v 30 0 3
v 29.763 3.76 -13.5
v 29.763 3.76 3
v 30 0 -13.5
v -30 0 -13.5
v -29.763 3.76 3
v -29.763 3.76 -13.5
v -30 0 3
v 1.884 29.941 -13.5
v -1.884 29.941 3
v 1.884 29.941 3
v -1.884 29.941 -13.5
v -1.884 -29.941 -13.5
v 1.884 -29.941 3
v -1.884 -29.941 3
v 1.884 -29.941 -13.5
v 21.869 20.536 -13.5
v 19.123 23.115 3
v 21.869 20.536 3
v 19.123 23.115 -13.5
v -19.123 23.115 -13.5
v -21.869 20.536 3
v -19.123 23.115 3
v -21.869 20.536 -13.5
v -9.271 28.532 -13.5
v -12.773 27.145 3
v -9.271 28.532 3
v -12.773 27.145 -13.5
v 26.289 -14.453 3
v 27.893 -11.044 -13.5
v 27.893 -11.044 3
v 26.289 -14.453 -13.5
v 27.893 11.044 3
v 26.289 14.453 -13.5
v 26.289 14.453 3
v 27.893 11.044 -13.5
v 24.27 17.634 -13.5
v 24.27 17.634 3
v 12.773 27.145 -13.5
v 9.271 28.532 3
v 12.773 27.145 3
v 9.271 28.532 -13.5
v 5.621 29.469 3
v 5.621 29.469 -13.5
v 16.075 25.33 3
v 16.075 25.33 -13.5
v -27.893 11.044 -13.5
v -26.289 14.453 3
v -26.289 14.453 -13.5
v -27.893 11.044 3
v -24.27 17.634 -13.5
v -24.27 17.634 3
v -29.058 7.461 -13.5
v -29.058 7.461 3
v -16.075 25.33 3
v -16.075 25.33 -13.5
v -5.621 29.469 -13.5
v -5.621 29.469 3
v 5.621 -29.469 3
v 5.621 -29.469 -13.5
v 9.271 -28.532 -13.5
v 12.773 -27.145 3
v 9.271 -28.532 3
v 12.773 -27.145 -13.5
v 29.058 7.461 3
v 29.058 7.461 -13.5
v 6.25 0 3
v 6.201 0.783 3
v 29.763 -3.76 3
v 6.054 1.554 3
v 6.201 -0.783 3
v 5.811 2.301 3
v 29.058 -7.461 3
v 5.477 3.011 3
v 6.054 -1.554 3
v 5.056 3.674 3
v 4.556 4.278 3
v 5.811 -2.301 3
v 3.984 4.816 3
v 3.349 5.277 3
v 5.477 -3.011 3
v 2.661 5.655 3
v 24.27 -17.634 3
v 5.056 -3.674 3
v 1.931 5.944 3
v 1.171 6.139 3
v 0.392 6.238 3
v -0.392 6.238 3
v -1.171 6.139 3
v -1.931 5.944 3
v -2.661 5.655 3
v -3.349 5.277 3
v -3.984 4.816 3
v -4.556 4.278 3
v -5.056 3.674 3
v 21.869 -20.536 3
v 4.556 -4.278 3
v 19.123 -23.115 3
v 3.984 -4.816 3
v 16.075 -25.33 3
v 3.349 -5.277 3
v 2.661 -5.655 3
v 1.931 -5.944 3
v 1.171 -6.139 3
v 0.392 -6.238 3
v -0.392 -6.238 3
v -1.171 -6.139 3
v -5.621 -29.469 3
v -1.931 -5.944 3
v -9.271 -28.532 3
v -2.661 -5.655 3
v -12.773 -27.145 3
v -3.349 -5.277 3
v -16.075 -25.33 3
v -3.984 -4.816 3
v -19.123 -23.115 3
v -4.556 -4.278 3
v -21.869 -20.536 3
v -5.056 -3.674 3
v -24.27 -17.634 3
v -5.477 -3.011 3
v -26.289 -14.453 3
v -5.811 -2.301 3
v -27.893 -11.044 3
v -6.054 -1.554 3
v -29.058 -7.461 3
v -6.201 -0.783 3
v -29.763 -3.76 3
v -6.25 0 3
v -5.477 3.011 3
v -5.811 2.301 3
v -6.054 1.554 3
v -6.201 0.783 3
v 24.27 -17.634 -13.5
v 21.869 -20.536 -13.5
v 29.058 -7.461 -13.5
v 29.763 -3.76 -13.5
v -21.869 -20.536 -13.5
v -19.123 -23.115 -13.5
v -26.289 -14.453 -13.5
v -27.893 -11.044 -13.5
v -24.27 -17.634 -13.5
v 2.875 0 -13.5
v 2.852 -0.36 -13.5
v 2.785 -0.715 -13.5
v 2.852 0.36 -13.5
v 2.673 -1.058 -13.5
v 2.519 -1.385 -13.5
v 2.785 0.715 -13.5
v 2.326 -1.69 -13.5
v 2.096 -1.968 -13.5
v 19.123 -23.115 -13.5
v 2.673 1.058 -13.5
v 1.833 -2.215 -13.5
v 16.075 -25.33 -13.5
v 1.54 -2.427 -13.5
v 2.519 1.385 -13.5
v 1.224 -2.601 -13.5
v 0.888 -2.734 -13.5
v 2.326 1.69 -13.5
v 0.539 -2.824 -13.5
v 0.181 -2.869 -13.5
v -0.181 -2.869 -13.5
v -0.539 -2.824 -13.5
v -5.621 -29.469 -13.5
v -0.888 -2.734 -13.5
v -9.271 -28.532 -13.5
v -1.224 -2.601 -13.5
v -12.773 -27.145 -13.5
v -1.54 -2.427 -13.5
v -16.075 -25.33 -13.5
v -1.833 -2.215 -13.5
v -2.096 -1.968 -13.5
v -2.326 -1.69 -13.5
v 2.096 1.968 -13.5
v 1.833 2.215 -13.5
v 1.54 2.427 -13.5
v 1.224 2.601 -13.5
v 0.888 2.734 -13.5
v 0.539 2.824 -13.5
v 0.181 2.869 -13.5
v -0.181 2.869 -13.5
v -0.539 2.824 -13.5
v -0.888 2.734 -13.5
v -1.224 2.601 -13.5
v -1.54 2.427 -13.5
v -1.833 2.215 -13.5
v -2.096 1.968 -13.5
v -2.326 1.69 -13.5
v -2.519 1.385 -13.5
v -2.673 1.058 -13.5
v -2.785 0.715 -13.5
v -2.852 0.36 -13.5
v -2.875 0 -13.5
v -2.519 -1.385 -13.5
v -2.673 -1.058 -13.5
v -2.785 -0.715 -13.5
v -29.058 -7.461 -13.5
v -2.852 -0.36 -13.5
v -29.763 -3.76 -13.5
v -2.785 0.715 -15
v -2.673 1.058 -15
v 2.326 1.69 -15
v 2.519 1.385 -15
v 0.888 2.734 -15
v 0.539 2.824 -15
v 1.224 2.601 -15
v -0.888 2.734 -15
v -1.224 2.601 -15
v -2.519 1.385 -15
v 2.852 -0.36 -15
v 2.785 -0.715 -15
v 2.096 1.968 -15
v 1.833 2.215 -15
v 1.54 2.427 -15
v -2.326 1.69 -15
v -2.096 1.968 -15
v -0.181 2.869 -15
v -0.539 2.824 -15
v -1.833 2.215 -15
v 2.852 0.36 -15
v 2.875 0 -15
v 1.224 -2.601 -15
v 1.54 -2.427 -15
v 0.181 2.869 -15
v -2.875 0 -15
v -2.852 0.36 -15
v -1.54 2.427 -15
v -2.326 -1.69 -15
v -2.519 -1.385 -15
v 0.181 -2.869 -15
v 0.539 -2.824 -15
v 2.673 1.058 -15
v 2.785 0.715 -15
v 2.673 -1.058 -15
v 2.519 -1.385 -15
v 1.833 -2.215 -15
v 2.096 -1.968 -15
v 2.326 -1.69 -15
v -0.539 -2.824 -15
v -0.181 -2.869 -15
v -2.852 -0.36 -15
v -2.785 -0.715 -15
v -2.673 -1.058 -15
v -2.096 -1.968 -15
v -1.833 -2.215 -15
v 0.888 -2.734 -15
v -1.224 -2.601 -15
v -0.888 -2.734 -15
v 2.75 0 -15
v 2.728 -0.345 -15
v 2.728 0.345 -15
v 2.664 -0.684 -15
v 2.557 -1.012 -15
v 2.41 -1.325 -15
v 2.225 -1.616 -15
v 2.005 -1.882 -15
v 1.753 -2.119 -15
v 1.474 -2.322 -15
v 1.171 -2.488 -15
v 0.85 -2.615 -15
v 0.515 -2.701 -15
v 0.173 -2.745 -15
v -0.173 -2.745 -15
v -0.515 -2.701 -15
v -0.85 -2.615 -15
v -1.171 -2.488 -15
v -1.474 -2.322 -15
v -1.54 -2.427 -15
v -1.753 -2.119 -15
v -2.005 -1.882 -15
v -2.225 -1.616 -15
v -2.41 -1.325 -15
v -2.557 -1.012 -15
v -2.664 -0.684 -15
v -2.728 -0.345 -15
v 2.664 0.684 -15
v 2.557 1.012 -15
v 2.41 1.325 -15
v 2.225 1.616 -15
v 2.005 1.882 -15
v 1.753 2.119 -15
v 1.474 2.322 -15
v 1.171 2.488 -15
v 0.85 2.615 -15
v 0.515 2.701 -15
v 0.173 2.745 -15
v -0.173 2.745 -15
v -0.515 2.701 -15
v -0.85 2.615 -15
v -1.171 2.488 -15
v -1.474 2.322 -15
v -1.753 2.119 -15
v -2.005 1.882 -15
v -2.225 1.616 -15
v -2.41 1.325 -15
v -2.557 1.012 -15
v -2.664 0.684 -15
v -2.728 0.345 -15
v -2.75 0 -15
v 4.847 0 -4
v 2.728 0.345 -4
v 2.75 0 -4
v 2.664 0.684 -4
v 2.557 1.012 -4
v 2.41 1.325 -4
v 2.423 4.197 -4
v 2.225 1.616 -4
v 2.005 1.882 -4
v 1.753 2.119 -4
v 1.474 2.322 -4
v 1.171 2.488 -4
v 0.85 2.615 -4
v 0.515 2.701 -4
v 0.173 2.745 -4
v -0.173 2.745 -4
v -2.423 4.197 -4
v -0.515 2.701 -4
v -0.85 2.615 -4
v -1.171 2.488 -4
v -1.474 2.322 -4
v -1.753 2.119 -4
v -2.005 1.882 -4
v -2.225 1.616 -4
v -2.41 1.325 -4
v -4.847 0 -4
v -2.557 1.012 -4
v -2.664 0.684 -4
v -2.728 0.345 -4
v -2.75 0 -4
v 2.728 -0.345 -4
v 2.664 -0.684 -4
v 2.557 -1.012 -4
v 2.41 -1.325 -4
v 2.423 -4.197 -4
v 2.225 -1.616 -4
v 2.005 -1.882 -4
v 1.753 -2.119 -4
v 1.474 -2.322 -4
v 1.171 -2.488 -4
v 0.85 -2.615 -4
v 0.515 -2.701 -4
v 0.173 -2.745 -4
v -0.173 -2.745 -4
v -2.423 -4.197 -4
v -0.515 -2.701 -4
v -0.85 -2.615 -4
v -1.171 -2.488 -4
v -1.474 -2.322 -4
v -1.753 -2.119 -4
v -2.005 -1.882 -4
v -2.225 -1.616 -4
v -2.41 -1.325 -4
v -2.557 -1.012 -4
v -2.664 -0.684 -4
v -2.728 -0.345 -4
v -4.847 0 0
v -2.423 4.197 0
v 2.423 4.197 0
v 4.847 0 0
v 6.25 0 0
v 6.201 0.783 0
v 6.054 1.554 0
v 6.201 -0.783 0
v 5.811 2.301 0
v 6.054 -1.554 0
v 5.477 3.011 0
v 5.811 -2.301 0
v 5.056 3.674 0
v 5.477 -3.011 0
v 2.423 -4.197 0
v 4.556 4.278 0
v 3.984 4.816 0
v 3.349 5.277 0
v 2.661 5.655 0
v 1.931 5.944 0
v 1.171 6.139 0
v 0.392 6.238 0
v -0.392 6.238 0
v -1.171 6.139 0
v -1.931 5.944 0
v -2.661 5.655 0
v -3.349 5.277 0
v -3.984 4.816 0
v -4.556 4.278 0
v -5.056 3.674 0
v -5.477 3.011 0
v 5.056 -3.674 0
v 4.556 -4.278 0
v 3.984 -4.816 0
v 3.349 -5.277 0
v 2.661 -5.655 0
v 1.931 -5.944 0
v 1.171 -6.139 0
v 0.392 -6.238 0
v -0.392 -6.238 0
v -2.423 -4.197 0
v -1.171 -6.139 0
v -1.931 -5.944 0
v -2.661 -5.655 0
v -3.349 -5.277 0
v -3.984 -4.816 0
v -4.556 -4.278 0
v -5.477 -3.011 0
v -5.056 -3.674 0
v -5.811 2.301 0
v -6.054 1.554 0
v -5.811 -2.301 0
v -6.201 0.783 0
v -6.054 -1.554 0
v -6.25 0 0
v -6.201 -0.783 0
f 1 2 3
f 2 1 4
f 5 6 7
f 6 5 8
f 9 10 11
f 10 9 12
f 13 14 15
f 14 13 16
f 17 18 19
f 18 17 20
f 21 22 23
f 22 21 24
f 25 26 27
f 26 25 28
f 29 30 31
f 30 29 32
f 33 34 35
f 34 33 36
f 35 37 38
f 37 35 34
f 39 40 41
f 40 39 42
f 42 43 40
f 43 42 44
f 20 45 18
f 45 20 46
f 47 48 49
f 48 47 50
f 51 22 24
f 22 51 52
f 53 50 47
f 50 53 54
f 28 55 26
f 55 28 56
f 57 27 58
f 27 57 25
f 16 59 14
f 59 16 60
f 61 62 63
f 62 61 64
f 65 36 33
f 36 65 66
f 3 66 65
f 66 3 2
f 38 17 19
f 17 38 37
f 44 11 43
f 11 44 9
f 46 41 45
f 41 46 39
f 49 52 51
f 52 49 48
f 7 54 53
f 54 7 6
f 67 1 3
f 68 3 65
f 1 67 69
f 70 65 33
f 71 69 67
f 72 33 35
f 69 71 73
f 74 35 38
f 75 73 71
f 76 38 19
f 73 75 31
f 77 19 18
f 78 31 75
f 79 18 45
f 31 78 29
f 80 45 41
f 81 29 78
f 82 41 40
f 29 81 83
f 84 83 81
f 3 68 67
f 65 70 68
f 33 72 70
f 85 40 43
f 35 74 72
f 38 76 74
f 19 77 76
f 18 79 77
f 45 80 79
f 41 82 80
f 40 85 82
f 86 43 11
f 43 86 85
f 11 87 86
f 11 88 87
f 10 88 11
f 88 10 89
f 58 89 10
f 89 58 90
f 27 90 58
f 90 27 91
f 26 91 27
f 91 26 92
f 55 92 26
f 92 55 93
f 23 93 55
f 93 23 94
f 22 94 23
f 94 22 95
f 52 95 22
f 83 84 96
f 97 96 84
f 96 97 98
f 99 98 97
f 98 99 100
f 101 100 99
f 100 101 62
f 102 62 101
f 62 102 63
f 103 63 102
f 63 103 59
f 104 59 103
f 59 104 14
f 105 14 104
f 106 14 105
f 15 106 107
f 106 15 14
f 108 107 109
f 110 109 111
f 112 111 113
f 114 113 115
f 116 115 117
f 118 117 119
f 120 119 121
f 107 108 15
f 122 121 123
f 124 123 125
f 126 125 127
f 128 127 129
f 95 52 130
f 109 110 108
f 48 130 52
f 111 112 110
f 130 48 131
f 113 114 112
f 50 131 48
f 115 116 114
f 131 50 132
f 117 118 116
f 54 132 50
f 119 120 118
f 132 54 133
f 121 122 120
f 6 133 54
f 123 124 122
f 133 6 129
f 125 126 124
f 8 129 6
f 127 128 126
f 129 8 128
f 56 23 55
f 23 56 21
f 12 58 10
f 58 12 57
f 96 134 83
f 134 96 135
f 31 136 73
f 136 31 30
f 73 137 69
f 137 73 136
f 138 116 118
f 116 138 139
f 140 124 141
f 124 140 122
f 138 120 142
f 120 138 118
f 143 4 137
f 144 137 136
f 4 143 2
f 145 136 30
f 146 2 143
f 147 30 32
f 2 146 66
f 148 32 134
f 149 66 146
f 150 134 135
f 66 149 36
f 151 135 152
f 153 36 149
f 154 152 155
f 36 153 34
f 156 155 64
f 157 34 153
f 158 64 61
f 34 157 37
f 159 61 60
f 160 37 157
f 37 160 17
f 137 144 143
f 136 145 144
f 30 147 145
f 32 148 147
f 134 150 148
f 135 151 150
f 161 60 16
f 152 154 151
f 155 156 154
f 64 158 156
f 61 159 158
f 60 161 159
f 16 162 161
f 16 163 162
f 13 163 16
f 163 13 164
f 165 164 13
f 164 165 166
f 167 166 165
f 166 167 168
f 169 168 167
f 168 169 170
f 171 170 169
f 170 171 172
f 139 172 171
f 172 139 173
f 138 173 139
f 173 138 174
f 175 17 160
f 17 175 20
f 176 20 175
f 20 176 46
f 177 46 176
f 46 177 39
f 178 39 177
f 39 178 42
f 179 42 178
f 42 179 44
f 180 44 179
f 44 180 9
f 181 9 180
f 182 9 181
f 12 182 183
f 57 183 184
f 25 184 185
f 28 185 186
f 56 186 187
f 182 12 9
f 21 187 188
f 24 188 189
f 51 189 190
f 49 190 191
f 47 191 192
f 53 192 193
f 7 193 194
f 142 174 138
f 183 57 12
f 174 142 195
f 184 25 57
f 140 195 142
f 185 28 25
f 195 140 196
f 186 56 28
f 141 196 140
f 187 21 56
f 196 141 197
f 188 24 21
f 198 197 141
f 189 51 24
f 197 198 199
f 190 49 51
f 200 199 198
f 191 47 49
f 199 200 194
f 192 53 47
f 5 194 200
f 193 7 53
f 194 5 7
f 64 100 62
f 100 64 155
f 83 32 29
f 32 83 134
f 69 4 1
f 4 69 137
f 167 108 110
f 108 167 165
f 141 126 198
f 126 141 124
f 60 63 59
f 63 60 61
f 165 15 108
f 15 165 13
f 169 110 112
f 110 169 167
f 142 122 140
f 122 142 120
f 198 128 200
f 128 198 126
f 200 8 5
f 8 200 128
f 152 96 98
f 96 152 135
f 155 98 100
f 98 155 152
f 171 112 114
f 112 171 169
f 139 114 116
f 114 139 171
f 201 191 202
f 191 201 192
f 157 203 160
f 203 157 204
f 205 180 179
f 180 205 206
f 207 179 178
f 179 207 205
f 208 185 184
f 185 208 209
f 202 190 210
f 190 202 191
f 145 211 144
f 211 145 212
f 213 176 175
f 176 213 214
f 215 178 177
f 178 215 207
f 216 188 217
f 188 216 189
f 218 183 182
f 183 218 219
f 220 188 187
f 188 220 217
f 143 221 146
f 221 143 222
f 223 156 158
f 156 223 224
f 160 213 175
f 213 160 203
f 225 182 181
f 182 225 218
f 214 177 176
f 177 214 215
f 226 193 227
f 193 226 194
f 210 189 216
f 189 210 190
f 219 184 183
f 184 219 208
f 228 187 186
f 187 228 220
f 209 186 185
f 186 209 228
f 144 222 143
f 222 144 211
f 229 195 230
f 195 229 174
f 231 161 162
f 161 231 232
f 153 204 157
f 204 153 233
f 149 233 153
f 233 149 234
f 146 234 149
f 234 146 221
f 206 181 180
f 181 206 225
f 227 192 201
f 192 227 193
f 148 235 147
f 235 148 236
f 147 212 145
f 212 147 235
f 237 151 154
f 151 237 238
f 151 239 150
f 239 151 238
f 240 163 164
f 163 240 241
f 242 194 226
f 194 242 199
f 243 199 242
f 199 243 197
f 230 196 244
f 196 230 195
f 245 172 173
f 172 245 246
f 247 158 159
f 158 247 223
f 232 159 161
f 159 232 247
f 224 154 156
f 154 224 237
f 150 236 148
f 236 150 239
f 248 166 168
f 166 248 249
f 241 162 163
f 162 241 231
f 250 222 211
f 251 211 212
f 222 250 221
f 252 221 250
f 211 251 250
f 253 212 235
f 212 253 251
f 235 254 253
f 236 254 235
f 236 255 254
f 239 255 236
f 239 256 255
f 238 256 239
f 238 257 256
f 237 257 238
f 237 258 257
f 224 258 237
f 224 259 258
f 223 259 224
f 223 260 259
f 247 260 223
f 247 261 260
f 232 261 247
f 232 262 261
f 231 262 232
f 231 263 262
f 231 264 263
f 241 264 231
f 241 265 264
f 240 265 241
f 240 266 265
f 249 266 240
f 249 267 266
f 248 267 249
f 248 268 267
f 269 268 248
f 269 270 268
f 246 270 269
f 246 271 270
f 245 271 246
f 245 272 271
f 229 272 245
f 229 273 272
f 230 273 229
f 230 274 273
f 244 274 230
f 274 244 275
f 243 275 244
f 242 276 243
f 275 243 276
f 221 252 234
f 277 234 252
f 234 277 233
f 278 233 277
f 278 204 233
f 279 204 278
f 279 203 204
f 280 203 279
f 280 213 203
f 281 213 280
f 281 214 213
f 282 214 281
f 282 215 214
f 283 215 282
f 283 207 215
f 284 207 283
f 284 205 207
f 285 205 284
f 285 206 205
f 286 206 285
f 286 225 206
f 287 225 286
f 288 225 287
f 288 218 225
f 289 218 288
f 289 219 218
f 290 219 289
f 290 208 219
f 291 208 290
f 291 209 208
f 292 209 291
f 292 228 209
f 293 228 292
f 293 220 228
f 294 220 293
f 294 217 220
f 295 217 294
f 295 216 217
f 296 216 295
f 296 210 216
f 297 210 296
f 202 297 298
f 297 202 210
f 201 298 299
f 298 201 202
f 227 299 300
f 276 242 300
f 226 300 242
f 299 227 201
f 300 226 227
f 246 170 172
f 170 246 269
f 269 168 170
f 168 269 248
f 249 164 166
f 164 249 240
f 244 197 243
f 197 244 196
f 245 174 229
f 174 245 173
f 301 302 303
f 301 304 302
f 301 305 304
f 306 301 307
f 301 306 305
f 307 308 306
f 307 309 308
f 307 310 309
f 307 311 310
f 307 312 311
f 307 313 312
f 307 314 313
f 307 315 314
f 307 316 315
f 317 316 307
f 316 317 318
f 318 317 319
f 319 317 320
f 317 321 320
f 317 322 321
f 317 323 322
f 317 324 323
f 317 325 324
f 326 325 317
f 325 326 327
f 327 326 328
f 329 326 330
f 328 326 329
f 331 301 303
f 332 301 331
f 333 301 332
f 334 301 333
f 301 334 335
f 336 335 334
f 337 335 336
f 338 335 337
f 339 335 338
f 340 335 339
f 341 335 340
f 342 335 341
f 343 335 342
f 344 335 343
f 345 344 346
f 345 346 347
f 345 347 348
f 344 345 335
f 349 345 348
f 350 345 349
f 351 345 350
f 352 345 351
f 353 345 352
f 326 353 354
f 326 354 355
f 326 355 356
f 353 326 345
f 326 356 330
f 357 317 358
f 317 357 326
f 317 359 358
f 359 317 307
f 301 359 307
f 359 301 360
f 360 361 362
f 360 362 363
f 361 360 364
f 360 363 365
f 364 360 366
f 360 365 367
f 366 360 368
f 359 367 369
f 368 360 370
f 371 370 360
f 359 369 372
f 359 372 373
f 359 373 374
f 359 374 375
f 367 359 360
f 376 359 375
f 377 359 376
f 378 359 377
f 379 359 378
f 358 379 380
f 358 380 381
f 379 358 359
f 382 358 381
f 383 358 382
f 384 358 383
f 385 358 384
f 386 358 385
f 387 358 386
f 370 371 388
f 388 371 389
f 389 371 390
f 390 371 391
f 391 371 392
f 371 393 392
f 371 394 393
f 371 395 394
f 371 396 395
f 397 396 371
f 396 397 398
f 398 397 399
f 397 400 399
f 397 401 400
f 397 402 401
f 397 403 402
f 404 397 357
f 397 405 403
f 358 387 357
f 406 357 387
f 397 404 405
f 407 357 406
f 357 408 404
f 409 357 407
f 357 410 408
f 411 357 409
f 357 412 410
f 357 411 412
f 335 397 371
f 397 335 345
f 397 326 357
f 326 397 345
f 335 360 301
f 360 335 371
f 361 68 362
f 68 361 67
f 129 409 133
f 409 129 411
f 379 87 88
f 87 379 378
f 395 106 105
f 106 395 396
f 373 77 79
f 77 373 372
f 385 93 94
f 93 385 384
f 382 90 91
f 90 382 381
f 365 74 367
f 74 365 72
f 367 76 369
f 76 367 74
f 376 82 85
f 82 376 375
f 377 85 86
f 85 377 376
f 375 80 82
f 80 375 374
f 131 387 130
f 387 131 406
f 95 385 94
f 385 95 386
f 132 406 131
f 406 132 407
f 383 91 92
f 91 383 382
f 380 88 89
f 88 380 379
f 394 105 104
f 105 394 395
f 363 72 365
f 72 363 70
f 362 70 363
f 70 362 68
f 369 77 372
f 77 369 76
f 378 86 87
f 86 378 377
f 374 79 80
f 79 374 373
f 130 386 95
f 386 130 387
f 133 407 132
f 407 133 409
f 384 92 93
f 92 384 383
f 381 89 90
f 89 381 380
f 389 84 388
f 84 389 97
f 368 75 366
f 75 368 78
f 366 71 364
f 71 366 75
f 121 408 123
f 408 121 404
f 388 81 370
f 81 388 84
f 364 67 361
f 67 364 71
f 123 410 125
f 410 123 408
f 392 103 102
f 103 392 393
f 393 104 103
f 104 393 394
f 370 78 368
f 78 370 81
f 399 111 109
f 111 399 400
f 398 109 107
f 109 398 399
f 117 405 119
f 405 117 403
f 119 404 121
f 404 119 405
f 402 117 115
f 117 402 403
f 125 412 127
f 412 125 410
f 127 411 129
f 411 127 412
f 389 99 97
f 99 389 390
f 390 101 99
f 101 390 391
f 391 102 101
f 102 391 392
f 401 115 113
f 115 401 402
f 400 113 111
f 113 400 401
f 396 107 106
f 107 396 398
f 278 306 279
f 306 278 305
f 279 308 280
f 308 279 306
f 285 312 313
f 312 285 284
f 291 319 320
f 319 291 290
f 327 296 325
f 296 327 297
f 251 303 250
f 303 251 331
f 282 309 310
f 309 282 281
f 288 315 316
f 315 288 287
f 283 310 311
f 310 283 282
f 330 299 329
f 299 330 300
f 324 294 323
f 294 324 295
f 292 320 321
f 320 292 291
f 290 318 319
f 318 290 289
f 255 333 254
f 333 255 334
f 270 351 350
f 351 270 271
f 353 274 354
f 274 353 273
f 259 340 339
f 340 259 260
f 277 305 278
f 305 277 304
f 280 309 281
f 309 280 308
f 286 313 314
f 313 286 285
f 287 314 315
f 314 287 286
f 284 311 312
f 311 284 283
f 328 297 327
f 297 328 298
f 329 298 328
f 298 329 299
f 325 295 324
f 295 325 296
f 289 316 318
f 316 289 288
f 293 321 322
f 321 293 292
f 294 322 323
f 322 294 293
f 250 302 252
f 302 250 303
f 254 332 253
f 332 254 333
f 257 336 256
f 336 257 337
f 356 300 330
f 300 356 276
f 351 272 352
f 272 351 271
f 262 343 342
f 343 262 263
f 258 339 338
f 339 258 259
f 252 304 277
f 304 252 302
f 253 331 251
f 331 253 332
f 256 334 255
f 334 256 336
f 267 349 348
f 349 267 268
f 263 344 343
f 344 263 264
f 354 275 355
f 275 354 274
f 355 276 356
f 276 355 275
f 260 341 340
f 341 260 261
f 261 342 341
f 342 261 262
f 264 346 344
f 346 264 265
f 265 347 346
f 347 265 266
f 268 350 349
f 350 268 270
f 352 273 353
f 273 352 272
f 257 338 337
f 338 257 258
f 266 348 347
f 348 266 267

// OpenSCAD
$fn = 50;

difference() {
	union() {
		translate(v = [0, 0, -13.5]) {
			cylinder(h = 16.5, r = 30.0);
		}
		#translate(v = [0, 0, -15.0]) {
			cylinder(h = 15, r = 2.875);
		}
	}
	union() {
		translate(v = [0, 0, 0]) {
			rotate(a = [0, 0, 0]) {
				difference() {
					union() {
						translate(v = [0, 0, -4]) {
							linear_extrude(height = 4) {
								polygon(points = [[4.8468, 0.0], [2.4234000000000004, 4.197451927062417], [-2.423399999999999, 4.197451927062417], [-4.8468, 5.935618106107392e-16], [-2.423400000000002, -4.197451927062416], [2.423399999999997, -4.197451927062419]]);
							}
						}
					}
					union();
				}
			}
		}
		#cylinder(h = 3, r = 6.25);
		#translate(v = [0, 0, -100.0]) {
			cylinder(h = 200, r = 2.75);
		}
	}
}
